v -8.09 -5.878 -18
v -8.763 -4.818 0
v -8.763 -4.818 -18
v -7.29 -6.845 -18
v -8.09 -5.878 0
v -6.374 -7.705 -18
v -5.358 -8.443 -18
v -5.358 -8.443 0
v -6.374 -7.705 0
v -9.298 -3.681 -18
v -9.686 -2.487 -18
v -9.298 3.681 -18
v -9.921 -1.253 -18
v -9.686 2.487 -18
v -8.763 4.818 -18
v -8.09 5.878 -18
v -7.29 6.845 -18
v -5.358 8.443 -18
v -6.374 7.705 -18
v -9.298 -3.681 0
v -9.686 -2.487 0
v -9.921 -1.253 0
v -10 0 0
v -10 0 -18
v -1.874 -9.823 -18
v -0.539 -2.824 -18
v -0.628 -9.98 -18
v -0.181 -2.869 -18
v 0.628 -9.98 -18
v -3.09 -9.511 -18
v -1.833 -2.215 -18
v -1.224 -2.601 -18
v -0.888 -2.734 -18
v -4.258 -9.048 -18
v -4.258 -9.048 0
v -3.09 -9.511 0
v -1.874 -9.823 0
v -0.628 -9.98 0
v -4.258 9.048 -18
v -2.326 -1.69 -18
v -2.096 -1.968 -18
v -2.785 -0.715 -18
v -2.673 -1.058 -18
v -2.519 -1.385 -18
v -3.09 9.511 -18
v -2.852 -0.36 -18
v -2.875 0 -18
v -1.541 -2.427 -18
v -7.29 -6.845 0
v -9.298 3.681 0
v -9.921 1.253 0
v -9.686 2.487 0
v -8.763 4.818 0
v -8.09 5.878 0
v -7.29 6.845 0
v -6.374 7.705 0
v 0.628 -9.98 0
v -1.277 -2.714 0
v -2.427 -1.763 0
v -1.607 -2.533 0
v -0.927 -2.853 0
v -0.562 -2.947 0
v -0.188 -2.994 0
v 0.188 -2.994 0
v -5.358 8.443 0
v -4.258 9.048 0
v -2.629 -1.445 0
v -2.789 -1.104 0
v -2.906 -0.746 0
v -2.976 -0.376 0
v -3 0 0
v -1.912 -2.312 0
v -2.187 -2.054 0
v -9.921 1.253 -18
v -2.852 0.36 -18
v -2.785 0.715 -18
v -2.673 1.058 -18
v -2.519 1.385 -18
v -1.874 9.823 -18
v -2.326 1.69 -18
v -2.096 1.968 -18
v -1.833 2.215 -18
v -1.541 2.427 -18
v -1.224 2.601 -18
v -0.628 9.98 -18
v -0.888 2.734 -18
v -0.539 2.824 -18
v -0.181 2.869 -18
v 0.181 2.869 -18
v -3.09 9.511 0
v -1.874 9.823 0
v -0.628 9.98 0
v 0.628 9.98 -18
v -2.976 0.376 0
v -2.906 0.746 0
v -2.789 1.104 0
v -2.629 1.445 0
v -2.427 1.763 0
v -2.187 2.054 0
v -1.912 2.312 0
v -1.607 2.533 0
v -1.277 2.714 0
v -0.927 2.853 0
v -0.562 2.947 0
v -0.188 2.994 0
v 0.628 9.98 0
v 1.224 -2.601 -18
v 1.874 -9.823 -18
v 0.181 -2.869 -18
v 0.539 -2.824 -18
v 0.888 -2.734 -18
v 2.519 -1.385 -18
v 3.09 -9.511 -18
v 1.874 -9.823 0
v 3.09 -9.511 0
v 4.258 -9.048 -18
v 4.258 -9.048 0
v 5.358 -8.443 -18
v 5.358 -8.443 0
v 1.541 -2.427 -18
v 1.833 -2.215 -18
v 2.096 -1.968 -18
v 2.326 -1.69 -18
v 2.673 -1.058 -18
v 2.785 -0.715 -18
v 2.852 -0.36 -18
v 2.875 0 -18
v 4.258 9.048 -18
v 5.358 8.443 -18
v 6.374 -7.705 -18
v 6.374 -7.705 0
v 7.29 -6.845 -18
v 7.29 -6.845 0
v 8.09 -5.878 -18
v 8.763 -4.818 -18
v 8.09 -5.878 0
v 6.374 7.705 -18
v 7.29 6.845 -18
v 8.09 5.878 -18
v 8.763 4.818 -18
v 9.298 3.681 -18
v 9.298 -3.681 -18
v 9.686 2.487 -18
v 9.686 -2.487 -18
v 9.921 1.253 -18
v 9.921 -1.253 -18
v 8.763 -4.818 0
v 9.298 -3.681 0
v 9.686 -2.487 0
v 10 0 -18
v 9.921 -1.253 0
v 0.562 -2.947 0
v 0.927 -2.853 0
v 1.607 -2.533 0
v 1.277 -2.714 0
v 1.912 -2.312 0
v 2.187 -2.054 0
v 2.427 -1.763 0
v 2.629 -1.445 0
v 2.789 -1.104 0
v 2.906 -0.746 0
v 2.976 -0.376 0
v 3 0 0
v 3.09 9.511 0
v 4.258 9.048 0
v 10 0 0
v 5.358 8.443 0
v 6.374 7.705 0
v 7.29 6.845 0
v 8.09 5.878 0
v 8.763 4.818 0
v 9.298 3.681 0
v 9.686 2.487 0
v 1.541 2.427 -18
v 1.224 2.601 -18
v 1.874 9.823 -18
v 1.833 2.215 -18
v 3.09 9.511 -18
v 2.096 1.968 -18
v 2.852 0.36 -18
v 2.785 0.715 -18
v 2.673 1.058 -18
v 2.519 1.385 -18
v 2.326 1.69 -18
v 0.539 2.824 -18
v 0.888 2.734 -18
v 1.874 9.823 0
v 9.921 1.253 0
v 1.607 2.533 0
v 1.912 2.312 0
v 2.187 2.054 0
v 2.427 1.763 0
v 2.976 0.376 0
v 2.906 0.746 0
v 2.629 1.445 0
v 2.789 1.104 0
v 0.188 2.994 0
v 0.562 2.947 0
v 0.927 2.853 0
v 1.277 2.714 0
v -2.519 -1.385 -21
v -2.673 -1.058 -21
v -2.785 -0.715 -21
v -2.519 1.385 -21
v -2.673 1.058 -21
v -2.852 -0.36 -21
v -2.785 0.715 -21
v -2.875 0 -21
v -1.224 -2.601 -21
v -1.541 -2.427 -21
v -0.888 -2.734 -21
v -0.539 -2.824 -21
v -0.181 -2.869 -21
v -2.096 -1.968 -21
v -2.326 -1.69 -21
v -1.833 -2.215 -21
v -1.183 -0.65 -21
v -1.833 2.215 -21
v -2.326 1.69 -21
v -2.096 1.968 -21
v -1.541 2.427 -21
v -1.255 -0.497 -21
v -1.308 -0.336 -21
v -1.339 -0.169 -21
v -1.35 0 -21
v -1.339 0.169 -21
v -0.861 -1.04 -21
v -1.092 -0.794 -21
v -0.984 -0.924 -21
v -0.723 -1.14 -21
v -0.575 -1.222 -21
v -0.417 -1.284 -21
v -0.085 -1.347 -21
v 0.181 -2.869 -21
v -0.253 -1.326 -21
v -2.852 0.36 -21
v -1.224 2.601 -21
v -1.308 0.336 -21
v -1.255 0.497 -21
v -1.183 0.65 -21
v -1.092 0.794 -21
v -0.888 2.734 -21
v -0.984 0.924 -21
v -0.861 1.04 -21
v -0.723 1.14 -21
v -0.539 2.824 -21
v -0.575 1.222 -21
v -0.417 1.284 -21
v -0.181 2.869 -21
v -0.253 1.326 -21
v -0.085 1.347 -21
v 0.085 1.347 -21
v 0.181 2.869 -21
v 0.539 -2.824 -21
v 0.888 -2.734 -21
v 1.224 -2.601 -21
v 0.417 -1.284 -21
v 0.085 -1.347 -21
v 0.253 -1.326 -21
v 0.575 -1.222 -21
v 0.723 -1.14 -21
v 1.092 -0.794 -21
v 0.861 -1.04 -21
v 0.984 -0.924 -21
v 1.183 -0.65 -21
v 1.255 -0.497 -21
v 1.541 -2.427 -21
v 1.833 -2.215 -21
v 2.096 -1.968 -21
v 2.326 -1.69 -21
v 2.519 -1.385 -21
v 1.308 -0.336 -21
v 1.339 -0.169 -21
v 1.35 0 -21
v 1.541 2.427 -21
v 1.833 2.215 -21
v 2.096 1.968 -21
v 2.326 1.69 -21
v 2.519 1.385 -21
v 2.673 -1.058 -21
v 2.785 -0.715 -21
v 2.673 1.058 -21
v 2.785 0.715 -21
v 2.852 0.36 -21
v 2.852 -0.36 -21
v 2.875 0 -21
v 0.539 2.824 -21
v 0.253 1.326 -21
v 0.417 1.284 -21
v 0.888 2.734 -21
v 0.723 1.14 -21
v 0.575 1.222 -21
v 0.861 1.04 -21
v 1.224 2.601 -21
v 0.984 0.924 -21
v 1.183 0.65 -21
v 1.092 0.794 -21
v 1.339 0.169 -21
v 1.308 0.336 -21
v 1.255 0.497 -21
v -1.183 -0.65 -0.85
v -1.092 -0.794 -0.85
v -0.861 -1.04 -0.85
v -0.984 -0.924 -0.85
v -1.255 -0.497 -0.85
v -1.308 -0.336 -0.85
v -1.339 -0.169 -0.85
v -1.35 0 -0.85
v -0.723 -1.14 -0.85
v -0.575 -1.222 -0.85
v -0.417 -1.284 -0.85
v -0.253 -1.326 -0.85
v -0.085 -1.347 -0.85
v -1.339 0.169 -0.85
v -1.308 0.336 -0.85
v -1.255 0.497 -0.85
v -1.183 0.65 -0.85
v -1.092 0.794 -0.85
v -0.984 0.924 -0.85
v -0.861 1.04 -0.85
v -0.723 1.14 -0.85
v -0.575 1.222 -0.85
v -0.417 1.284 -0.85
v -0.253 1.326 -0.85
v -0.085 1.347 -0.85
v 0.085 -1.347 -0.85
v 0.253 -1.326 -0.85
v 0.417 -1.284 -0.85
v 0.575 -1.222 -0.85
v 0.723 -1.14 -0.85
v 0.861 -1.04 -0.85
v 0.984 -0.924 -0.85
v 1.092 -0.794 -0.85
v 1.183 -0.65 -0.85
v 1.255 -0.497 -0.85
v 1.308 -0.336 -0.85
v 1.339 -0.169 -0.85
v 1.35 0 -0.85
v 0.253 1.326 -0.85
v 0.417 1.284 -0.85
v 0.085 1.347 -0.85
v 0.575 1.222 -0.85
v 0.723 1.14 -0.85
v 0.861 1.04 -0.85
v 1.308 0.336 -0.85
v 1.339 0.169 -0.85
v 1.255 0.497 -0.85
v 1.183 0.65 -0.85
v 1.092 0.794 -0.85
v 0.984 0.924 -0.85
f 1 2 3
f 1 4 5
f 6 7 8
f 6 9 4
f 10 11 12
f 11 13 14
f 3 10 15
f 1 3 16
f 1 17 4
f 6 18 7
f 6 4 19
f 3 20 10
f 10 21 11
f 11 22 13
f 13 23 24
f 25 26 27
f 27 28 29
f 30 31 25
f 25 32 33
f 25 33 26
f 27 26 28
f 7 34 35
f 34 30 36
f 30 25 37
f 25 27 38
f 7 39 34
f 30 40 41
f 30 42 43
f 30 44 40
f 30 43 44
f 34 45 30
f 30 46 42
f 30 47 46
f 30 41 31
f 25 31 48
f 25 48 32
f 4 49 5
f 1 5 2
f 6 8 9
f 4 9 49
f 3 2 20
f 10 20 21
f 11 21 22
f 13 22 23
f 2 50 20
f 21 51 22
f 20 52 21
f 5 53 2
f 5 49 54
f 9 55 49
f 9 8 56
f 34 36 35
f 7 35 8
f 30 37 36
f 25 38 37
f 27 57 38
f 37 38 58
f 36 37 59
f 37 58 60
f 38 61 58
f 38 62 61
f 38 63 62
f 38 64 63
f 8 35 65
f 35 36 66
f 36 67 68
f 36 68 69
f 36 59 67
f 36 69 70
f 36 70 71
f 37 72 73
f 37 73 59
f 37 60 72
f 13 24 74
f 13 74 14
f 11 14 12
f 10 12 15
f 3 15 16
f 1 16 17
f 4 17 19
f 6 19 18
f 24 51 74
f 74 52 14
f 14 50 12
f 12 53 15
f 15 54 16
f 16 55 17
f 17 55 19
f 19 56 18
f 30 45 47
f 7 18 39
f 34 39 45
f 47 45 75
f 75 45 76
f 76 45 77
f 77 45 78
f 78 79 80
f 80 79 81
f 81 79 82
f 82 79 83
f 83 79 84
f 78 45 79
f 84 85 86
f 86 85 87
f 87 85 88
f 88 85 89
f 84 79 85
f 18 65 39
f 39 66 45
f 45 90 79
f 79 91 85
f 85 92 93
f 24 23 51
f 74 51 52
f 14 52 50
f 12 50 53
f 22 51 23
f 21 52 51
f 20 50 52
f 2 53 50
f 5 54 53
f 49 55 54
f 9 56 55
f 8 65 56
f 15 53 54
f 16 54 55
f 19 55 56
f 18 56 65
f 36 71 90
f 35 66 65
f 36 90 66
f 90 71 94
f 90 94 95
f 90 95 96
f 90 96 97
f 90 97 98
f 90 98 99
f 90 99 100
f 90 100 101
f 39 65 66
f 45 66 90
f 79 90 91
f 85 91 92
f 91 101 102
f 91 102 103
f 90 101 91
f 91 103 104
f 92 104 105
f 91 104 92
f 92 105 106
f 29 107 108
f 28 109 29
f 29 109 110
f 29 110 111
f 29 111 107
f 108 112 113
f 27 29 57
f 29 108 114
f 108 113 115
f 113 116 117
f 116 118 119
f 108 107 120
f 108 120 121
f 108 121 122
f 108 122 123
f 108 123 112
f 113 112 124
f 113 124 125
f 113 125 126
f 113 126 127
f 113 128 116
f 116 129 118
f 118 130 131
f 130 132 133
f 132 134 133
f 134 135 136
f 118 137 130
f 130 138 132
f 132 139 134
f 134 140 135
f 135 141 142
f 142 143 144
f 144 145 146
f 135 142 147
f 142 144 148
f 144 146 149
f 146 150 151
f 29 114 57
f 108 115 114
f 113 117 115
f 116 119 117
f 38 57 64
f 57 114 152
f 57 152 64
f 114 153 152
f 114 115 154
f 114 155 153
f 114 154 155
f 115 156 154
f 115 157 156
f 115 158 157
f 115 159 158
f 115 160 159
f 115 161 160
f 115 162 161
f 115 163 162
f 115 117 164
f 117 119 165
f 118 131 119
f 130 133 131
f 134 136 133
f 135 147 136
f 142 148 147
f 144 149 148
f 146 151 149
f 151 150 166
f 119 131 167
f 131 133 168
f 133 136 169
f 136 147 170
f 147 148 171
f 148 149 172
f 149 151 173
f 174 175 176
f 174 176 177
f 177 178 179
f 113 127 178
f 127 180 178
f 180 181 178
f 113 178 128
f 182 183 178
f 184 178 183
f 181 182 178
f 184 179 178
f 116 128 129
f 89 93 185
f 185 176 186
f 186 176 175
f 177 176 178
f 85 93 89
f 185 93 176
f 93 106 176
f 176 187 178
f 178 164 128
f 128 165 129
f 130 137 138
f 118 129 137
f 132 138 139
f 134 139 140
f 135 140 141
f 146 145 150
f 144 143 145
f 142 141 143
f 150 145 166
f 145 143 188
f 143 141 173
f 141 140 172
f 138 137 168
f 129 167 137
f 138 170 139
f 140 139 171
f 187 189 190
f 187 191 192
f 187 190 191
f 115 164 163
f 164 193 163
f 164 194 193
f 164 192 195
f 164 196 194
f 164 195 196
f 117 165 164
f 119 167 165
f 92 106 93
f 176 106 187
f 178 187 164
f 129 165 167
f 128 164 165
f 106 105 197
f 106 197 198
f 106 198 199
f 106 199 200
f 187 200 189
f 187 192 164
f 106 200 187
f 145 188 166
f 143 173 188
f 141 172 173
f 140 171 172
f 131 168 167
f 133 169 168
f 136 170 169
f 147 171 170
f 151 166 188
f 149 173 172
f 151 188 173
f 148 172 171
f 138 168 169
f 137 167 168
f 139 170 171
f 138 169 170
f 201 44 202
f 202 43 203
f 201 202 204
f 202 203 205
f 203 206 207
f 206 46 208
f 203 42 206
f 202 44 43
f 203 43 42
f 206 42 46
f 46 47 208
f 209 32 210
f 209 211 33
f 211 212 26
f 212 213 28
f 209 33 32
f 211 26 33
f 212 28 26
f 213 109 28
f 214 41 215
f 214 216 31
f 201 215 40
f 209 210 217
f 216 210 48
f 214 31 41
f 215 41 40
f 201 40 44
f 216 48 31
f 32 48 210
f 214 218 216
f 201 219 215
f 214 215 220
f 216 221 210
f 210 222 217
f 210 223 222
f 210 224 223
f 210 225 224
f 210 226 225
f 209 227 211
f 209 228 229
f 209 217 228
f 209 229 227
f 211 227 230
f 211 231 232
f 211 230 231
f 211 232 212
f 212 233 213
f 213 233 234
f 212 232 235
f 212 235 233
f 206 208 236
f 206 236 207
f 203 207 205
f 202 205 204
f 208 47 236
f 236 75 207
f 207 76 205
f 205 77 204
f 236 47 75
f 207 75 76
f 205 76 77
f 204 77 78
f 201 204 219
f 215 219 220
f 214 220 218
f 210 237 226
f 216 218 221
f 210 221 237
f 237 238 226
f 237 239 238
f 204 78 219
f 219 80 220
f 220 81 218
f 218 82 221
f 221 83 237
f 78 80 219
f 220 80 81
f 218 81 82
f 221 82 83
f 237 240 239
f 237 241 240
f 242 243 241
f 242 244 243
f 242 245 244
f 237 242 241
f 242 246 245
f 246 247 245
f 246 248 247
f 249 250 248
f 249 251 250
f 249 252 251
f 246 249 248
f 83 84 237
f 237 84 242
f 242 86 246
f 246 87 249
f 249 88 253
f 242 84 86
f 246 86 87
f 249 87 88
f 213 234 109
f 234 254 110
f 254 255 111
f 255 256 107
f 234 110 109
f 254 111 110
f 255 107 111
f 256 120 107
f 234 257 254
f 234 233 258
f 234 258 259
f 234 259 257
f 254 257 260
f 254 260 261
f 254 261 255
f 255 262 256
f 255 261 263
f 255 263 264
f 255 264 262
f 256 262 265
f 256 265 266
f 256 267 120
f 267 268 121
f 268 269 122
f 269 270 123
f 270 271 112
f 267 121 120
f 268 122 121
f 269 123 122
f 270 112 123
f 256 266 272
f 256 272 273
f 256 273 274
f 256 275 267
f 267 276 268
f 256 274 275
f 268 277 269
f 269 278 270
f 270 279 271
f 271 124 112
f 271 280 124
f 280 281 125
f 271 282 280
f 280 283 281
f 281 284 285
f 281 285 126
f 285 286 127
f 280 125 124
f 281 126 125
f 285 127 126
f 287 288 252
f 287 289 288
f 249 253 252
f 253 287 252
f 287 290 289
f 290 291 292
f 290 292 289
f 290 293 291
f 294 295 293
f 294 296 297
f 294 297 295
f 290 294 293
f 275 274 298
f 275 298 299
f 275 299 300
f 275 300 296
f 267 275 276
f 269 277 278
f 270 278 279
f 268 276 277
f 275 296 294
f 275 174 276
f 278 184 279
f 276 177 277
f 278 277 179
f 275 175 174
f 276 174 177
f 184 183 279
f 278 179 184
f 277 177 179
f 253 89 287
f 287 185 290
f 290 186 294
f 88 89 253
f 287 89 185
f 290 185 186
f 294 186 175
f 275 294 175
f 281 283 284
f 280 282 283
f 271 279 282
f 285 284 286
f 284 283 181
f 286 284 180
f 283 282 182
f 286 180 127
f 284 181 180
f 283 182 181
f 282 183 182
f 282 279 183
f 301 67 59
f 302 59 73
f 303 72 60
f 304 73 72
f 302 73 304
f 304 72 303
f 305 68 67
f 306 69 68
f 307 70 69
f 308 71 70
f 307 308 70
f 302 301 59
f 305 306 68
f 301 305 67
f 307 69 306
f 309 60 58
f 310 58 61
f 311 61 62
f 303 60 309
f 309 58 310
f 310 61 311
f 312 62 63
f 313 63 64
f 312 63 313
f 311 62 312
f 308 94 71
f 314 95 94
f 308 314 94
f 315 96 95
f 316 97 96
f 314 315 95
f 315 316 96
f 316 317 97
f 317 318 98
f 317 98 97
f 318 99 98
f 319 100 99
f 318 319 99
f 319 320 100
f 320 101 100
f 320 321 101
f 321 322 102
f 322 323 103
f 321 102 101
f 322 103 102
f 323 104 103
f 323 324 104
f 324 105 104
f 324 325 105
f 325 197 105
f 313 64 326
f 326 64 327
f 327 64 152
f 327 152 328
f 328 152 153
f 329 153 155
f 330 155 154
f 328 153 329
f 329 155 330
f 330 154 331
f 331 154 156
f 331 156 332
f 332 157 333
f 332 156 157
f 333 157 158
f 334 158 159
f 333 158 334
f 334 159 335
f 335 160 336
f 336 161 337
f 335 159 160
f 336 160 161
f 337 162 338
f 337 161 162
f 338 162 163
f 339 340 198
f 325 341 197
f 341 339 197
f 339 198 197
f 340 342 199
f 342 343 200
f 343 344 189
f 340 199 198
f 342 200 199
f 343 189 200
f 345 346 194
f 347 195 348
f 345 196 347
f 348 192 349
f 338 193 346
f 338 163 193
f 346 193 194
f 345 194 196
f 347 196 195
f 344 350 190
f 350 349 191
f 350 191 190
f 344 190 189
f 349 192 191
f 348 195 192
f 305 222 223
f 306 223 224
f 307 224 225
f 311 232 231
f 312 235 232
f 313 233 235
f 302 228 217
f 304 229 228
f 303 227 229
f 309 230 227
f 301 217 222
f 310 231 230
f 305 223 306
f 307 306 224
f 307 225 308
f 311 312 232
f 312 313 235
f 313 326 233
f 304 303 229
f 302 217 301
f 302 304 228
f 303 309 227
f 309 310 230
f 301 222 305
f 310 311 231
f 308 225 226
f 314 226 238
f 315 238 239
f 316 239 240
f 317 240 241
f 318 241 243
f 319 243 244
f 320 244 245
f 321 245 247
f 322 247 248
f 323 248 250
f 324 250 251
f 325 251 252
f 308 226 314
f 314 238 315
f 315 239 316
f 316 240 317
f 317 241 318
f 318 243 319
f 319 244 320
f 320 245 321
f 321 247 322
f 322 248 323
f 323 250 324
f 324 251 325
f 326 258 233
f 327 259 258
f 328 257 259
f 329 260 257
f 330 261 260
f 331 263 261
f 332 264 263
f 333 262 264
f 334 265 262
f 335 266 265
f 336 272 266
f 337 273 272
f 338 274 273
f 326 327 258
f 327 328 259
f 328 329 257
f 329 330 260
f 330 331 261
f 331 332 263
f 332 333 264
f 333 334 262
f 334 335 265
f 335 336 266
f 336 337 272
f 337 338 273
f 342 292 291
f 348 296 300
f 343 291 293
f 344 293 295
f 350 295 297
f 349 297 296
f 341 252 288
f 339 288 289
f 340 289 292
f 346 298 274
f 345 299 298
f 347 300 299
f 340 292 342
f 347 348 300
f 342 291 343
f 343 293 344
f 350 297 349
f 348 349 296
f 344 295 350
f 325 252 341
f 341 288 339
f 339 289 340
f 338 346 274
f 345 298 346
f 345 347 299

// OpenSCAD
$fn = 50;

difference() {
	union() {
		translate(v = [0, 0, -18.0]) {
			cylinder(h = 18, r = 10.0);
		}
		#translate(v = [0, 0, -21.0]) {
			cylinder(h = 21, r = 2.875);
		}
	}
	union() {
		translate(v = [0, 0, 0]) {
			rotate(a = [0, 0, 0]) {
				difference() {
					union() {
						translate(v = [0, 0, -21.0]) {
							cylinder(h = 21, r = 1.0);
						}
						translate(v = [0, 0, -0.85]) {
							cylinder(h = 0.85, r1 = 1.35, r2 = 3.0);
						}
						translate(v = [0, 0, -21.0]) {
							cylinder(h = 21, r = 1.35);
						}
						translate(v = [0, 0, -21.0]) {
							cylinder(h = 21, r = 1.0);
						}
					}
					union();
				}
			}
		}
	}
}
